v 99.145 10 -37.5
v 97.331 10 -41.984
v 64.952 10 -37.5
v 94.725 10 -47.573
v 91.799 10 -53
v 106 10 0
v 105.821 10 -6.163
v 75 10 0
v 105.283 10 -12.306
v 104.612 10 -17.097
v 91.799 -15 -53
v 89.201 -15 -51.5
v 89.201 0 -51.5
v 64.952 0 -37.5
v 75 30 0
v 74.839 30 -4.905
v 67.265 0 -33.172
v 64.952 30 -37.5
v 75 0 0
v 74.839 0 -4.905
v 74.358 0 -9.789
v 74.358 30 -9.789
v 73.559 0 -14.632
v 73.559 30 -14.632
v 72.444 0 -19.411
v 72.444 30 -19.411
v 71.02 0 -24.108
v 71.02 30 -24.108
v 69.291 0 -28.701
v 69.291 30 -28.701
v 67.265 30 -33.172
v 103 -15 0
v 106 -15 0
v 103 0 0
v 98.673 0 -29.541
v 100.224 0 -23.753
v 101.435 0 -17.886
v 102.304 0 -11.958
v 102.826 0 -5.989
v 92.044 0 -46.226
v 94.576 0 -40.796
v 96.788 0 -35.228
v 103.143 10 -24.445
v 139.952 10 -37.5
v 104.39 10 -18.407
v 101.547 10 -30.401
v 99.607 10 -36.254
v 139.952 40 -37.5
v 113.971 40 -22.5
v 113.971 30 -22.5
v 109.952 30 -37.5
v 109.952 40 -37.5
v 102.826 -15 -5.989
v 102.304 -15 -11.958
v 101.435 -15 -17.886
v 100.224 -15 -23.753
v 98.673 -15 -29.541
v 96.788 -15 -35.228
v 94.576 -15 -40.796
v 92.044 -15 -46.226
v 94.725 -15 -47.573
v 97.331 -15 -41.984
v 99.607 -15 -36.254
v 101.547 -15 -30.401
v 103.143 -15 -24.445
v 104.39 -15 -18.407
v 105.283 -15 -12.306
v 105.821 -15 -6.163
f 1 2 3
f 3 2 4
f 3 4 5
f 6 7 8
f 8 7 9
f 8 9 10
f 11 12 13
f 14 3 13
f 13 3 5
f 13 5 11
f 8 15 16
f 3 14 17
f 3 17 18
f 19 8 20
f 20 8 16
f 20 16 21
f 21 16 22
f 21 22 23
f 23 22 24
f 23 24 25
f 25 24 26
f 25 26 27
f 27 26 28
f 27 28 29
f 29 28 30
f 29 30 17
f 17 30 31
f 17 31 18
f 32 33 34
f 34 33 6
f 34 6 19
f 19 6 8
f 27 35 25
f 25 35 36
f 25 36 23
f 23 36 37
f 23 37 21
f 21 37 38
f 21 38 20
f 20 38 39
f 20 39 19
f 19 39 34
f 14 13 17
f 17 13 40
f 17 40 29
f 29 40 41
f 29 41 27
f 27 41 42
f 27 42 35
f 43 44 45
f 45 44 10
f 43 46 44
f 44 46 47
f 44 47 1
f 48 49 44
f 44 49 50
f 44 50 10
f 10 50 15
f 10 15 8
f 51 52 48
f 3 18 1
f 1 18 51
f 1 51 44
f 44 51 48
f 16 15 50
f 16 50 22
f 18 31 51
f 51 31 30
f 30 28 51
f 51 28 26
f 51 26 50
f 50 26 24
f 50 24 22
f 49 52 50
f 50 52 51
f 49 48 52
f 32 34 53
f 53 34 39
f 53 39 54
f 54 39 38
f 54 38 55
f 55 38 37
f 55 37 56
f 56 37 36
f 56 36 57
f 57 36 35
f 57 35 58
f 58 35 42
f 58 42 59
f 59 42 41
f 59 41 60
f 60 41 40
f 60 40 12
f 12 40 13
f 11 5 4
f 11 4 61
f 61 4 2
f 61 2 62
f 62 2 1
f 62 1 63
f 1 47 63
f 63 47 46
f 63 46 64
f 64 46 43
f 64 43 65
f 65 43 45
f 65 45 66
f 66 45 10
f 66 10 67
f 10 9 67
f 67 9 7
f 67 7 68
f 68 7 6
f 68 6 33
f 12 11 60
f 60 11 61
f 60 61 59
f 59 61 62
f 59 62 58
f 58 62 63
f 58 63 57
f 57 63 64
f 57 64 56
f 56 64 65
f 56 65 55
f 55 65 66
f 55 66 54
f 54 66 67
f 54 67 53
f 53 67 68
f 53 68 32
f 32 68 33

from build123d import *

# Parameters (mm, degrees)
EXTRUDE_3_DEPTH = 10
EXTRUDE_4_DEPTH = 20
EXTRUDE_5_DEPTH = 10
EXTRUDE_START   = 25
EXTRUDE_6_DEPTH = 25


with BuildPart() as part:
    # 草图1 → 凸台-拉伸3 (new body)
    with BuildSketch(Plane(origin=(0, 0, 0), x_dir=(1, 0, 0), z_dir=(0, 1, 0))):
        with BuildLine():
            Line((64.951905284, 37.5), (89.20061659, 51.5))
            ThreePointArc((89.20061659, 51.5), (99.490360108, 26.658361646), (103, 0))
            Line((103, 0), (75, 0))
            ThreePointArc((75, 0), (72.444436972, 19.411428383), (64.951905284, 37.5))
        make_face()
    extrude(amount=EXTRUDE_3_DEPTH)

    # 草图5 → 凸台-拉伸4 (add)
    with BuildSketch(Plane(origin=(0, 10, 0), x_dir=(1, 0, 0), z_dir=(0, 1, 0))):
        with BuildLine():
            Line((64.951905284, 37.5), (139.951905284, 37.5))
            Line((139.951905284, 37.5), (75, 0))
            ThreePointArc((75, 0), (72.444436972, 19.411428383), (64.951905284, 37.5))
        make_face()
    extrude(amount=EXTRUDE_4_DEPTH)

    # 草图6 → 凸台-拉伸5 (add)
    with BuildSketch(Plane(origin=(0, 30, 0), x_dir=(1, 0, 0), z_dir=(0, 1, 0))):
        Polygon((109.951905284, 37.5), (139.951905284, 37.5), (113.97114317, 22.5), align=None)
    extrude(amount=EXTRUDE_5_DEPTH)

    # 草图7 → 凸台-拉伸6 (add)
    with BuildSketch(Plane.XZ.offset(-10).offset(EXTRUDE_START)):
        with BuildLine():
            Line((89.20061659, -51.5), (91.798692801, -53))
            ThreePointArc((91.798692801, -53), (102.388137587, -27.434818781), (106, 0))
            Line((106, 0), (103, 0))
            ThreePointArc((103, 0), (99.490360108, -26.658361646), (89.20061659, -51.5))
        make_face()
    extrude(amount=-EXTRUDE_6_DEPTH)


solid = part.part
